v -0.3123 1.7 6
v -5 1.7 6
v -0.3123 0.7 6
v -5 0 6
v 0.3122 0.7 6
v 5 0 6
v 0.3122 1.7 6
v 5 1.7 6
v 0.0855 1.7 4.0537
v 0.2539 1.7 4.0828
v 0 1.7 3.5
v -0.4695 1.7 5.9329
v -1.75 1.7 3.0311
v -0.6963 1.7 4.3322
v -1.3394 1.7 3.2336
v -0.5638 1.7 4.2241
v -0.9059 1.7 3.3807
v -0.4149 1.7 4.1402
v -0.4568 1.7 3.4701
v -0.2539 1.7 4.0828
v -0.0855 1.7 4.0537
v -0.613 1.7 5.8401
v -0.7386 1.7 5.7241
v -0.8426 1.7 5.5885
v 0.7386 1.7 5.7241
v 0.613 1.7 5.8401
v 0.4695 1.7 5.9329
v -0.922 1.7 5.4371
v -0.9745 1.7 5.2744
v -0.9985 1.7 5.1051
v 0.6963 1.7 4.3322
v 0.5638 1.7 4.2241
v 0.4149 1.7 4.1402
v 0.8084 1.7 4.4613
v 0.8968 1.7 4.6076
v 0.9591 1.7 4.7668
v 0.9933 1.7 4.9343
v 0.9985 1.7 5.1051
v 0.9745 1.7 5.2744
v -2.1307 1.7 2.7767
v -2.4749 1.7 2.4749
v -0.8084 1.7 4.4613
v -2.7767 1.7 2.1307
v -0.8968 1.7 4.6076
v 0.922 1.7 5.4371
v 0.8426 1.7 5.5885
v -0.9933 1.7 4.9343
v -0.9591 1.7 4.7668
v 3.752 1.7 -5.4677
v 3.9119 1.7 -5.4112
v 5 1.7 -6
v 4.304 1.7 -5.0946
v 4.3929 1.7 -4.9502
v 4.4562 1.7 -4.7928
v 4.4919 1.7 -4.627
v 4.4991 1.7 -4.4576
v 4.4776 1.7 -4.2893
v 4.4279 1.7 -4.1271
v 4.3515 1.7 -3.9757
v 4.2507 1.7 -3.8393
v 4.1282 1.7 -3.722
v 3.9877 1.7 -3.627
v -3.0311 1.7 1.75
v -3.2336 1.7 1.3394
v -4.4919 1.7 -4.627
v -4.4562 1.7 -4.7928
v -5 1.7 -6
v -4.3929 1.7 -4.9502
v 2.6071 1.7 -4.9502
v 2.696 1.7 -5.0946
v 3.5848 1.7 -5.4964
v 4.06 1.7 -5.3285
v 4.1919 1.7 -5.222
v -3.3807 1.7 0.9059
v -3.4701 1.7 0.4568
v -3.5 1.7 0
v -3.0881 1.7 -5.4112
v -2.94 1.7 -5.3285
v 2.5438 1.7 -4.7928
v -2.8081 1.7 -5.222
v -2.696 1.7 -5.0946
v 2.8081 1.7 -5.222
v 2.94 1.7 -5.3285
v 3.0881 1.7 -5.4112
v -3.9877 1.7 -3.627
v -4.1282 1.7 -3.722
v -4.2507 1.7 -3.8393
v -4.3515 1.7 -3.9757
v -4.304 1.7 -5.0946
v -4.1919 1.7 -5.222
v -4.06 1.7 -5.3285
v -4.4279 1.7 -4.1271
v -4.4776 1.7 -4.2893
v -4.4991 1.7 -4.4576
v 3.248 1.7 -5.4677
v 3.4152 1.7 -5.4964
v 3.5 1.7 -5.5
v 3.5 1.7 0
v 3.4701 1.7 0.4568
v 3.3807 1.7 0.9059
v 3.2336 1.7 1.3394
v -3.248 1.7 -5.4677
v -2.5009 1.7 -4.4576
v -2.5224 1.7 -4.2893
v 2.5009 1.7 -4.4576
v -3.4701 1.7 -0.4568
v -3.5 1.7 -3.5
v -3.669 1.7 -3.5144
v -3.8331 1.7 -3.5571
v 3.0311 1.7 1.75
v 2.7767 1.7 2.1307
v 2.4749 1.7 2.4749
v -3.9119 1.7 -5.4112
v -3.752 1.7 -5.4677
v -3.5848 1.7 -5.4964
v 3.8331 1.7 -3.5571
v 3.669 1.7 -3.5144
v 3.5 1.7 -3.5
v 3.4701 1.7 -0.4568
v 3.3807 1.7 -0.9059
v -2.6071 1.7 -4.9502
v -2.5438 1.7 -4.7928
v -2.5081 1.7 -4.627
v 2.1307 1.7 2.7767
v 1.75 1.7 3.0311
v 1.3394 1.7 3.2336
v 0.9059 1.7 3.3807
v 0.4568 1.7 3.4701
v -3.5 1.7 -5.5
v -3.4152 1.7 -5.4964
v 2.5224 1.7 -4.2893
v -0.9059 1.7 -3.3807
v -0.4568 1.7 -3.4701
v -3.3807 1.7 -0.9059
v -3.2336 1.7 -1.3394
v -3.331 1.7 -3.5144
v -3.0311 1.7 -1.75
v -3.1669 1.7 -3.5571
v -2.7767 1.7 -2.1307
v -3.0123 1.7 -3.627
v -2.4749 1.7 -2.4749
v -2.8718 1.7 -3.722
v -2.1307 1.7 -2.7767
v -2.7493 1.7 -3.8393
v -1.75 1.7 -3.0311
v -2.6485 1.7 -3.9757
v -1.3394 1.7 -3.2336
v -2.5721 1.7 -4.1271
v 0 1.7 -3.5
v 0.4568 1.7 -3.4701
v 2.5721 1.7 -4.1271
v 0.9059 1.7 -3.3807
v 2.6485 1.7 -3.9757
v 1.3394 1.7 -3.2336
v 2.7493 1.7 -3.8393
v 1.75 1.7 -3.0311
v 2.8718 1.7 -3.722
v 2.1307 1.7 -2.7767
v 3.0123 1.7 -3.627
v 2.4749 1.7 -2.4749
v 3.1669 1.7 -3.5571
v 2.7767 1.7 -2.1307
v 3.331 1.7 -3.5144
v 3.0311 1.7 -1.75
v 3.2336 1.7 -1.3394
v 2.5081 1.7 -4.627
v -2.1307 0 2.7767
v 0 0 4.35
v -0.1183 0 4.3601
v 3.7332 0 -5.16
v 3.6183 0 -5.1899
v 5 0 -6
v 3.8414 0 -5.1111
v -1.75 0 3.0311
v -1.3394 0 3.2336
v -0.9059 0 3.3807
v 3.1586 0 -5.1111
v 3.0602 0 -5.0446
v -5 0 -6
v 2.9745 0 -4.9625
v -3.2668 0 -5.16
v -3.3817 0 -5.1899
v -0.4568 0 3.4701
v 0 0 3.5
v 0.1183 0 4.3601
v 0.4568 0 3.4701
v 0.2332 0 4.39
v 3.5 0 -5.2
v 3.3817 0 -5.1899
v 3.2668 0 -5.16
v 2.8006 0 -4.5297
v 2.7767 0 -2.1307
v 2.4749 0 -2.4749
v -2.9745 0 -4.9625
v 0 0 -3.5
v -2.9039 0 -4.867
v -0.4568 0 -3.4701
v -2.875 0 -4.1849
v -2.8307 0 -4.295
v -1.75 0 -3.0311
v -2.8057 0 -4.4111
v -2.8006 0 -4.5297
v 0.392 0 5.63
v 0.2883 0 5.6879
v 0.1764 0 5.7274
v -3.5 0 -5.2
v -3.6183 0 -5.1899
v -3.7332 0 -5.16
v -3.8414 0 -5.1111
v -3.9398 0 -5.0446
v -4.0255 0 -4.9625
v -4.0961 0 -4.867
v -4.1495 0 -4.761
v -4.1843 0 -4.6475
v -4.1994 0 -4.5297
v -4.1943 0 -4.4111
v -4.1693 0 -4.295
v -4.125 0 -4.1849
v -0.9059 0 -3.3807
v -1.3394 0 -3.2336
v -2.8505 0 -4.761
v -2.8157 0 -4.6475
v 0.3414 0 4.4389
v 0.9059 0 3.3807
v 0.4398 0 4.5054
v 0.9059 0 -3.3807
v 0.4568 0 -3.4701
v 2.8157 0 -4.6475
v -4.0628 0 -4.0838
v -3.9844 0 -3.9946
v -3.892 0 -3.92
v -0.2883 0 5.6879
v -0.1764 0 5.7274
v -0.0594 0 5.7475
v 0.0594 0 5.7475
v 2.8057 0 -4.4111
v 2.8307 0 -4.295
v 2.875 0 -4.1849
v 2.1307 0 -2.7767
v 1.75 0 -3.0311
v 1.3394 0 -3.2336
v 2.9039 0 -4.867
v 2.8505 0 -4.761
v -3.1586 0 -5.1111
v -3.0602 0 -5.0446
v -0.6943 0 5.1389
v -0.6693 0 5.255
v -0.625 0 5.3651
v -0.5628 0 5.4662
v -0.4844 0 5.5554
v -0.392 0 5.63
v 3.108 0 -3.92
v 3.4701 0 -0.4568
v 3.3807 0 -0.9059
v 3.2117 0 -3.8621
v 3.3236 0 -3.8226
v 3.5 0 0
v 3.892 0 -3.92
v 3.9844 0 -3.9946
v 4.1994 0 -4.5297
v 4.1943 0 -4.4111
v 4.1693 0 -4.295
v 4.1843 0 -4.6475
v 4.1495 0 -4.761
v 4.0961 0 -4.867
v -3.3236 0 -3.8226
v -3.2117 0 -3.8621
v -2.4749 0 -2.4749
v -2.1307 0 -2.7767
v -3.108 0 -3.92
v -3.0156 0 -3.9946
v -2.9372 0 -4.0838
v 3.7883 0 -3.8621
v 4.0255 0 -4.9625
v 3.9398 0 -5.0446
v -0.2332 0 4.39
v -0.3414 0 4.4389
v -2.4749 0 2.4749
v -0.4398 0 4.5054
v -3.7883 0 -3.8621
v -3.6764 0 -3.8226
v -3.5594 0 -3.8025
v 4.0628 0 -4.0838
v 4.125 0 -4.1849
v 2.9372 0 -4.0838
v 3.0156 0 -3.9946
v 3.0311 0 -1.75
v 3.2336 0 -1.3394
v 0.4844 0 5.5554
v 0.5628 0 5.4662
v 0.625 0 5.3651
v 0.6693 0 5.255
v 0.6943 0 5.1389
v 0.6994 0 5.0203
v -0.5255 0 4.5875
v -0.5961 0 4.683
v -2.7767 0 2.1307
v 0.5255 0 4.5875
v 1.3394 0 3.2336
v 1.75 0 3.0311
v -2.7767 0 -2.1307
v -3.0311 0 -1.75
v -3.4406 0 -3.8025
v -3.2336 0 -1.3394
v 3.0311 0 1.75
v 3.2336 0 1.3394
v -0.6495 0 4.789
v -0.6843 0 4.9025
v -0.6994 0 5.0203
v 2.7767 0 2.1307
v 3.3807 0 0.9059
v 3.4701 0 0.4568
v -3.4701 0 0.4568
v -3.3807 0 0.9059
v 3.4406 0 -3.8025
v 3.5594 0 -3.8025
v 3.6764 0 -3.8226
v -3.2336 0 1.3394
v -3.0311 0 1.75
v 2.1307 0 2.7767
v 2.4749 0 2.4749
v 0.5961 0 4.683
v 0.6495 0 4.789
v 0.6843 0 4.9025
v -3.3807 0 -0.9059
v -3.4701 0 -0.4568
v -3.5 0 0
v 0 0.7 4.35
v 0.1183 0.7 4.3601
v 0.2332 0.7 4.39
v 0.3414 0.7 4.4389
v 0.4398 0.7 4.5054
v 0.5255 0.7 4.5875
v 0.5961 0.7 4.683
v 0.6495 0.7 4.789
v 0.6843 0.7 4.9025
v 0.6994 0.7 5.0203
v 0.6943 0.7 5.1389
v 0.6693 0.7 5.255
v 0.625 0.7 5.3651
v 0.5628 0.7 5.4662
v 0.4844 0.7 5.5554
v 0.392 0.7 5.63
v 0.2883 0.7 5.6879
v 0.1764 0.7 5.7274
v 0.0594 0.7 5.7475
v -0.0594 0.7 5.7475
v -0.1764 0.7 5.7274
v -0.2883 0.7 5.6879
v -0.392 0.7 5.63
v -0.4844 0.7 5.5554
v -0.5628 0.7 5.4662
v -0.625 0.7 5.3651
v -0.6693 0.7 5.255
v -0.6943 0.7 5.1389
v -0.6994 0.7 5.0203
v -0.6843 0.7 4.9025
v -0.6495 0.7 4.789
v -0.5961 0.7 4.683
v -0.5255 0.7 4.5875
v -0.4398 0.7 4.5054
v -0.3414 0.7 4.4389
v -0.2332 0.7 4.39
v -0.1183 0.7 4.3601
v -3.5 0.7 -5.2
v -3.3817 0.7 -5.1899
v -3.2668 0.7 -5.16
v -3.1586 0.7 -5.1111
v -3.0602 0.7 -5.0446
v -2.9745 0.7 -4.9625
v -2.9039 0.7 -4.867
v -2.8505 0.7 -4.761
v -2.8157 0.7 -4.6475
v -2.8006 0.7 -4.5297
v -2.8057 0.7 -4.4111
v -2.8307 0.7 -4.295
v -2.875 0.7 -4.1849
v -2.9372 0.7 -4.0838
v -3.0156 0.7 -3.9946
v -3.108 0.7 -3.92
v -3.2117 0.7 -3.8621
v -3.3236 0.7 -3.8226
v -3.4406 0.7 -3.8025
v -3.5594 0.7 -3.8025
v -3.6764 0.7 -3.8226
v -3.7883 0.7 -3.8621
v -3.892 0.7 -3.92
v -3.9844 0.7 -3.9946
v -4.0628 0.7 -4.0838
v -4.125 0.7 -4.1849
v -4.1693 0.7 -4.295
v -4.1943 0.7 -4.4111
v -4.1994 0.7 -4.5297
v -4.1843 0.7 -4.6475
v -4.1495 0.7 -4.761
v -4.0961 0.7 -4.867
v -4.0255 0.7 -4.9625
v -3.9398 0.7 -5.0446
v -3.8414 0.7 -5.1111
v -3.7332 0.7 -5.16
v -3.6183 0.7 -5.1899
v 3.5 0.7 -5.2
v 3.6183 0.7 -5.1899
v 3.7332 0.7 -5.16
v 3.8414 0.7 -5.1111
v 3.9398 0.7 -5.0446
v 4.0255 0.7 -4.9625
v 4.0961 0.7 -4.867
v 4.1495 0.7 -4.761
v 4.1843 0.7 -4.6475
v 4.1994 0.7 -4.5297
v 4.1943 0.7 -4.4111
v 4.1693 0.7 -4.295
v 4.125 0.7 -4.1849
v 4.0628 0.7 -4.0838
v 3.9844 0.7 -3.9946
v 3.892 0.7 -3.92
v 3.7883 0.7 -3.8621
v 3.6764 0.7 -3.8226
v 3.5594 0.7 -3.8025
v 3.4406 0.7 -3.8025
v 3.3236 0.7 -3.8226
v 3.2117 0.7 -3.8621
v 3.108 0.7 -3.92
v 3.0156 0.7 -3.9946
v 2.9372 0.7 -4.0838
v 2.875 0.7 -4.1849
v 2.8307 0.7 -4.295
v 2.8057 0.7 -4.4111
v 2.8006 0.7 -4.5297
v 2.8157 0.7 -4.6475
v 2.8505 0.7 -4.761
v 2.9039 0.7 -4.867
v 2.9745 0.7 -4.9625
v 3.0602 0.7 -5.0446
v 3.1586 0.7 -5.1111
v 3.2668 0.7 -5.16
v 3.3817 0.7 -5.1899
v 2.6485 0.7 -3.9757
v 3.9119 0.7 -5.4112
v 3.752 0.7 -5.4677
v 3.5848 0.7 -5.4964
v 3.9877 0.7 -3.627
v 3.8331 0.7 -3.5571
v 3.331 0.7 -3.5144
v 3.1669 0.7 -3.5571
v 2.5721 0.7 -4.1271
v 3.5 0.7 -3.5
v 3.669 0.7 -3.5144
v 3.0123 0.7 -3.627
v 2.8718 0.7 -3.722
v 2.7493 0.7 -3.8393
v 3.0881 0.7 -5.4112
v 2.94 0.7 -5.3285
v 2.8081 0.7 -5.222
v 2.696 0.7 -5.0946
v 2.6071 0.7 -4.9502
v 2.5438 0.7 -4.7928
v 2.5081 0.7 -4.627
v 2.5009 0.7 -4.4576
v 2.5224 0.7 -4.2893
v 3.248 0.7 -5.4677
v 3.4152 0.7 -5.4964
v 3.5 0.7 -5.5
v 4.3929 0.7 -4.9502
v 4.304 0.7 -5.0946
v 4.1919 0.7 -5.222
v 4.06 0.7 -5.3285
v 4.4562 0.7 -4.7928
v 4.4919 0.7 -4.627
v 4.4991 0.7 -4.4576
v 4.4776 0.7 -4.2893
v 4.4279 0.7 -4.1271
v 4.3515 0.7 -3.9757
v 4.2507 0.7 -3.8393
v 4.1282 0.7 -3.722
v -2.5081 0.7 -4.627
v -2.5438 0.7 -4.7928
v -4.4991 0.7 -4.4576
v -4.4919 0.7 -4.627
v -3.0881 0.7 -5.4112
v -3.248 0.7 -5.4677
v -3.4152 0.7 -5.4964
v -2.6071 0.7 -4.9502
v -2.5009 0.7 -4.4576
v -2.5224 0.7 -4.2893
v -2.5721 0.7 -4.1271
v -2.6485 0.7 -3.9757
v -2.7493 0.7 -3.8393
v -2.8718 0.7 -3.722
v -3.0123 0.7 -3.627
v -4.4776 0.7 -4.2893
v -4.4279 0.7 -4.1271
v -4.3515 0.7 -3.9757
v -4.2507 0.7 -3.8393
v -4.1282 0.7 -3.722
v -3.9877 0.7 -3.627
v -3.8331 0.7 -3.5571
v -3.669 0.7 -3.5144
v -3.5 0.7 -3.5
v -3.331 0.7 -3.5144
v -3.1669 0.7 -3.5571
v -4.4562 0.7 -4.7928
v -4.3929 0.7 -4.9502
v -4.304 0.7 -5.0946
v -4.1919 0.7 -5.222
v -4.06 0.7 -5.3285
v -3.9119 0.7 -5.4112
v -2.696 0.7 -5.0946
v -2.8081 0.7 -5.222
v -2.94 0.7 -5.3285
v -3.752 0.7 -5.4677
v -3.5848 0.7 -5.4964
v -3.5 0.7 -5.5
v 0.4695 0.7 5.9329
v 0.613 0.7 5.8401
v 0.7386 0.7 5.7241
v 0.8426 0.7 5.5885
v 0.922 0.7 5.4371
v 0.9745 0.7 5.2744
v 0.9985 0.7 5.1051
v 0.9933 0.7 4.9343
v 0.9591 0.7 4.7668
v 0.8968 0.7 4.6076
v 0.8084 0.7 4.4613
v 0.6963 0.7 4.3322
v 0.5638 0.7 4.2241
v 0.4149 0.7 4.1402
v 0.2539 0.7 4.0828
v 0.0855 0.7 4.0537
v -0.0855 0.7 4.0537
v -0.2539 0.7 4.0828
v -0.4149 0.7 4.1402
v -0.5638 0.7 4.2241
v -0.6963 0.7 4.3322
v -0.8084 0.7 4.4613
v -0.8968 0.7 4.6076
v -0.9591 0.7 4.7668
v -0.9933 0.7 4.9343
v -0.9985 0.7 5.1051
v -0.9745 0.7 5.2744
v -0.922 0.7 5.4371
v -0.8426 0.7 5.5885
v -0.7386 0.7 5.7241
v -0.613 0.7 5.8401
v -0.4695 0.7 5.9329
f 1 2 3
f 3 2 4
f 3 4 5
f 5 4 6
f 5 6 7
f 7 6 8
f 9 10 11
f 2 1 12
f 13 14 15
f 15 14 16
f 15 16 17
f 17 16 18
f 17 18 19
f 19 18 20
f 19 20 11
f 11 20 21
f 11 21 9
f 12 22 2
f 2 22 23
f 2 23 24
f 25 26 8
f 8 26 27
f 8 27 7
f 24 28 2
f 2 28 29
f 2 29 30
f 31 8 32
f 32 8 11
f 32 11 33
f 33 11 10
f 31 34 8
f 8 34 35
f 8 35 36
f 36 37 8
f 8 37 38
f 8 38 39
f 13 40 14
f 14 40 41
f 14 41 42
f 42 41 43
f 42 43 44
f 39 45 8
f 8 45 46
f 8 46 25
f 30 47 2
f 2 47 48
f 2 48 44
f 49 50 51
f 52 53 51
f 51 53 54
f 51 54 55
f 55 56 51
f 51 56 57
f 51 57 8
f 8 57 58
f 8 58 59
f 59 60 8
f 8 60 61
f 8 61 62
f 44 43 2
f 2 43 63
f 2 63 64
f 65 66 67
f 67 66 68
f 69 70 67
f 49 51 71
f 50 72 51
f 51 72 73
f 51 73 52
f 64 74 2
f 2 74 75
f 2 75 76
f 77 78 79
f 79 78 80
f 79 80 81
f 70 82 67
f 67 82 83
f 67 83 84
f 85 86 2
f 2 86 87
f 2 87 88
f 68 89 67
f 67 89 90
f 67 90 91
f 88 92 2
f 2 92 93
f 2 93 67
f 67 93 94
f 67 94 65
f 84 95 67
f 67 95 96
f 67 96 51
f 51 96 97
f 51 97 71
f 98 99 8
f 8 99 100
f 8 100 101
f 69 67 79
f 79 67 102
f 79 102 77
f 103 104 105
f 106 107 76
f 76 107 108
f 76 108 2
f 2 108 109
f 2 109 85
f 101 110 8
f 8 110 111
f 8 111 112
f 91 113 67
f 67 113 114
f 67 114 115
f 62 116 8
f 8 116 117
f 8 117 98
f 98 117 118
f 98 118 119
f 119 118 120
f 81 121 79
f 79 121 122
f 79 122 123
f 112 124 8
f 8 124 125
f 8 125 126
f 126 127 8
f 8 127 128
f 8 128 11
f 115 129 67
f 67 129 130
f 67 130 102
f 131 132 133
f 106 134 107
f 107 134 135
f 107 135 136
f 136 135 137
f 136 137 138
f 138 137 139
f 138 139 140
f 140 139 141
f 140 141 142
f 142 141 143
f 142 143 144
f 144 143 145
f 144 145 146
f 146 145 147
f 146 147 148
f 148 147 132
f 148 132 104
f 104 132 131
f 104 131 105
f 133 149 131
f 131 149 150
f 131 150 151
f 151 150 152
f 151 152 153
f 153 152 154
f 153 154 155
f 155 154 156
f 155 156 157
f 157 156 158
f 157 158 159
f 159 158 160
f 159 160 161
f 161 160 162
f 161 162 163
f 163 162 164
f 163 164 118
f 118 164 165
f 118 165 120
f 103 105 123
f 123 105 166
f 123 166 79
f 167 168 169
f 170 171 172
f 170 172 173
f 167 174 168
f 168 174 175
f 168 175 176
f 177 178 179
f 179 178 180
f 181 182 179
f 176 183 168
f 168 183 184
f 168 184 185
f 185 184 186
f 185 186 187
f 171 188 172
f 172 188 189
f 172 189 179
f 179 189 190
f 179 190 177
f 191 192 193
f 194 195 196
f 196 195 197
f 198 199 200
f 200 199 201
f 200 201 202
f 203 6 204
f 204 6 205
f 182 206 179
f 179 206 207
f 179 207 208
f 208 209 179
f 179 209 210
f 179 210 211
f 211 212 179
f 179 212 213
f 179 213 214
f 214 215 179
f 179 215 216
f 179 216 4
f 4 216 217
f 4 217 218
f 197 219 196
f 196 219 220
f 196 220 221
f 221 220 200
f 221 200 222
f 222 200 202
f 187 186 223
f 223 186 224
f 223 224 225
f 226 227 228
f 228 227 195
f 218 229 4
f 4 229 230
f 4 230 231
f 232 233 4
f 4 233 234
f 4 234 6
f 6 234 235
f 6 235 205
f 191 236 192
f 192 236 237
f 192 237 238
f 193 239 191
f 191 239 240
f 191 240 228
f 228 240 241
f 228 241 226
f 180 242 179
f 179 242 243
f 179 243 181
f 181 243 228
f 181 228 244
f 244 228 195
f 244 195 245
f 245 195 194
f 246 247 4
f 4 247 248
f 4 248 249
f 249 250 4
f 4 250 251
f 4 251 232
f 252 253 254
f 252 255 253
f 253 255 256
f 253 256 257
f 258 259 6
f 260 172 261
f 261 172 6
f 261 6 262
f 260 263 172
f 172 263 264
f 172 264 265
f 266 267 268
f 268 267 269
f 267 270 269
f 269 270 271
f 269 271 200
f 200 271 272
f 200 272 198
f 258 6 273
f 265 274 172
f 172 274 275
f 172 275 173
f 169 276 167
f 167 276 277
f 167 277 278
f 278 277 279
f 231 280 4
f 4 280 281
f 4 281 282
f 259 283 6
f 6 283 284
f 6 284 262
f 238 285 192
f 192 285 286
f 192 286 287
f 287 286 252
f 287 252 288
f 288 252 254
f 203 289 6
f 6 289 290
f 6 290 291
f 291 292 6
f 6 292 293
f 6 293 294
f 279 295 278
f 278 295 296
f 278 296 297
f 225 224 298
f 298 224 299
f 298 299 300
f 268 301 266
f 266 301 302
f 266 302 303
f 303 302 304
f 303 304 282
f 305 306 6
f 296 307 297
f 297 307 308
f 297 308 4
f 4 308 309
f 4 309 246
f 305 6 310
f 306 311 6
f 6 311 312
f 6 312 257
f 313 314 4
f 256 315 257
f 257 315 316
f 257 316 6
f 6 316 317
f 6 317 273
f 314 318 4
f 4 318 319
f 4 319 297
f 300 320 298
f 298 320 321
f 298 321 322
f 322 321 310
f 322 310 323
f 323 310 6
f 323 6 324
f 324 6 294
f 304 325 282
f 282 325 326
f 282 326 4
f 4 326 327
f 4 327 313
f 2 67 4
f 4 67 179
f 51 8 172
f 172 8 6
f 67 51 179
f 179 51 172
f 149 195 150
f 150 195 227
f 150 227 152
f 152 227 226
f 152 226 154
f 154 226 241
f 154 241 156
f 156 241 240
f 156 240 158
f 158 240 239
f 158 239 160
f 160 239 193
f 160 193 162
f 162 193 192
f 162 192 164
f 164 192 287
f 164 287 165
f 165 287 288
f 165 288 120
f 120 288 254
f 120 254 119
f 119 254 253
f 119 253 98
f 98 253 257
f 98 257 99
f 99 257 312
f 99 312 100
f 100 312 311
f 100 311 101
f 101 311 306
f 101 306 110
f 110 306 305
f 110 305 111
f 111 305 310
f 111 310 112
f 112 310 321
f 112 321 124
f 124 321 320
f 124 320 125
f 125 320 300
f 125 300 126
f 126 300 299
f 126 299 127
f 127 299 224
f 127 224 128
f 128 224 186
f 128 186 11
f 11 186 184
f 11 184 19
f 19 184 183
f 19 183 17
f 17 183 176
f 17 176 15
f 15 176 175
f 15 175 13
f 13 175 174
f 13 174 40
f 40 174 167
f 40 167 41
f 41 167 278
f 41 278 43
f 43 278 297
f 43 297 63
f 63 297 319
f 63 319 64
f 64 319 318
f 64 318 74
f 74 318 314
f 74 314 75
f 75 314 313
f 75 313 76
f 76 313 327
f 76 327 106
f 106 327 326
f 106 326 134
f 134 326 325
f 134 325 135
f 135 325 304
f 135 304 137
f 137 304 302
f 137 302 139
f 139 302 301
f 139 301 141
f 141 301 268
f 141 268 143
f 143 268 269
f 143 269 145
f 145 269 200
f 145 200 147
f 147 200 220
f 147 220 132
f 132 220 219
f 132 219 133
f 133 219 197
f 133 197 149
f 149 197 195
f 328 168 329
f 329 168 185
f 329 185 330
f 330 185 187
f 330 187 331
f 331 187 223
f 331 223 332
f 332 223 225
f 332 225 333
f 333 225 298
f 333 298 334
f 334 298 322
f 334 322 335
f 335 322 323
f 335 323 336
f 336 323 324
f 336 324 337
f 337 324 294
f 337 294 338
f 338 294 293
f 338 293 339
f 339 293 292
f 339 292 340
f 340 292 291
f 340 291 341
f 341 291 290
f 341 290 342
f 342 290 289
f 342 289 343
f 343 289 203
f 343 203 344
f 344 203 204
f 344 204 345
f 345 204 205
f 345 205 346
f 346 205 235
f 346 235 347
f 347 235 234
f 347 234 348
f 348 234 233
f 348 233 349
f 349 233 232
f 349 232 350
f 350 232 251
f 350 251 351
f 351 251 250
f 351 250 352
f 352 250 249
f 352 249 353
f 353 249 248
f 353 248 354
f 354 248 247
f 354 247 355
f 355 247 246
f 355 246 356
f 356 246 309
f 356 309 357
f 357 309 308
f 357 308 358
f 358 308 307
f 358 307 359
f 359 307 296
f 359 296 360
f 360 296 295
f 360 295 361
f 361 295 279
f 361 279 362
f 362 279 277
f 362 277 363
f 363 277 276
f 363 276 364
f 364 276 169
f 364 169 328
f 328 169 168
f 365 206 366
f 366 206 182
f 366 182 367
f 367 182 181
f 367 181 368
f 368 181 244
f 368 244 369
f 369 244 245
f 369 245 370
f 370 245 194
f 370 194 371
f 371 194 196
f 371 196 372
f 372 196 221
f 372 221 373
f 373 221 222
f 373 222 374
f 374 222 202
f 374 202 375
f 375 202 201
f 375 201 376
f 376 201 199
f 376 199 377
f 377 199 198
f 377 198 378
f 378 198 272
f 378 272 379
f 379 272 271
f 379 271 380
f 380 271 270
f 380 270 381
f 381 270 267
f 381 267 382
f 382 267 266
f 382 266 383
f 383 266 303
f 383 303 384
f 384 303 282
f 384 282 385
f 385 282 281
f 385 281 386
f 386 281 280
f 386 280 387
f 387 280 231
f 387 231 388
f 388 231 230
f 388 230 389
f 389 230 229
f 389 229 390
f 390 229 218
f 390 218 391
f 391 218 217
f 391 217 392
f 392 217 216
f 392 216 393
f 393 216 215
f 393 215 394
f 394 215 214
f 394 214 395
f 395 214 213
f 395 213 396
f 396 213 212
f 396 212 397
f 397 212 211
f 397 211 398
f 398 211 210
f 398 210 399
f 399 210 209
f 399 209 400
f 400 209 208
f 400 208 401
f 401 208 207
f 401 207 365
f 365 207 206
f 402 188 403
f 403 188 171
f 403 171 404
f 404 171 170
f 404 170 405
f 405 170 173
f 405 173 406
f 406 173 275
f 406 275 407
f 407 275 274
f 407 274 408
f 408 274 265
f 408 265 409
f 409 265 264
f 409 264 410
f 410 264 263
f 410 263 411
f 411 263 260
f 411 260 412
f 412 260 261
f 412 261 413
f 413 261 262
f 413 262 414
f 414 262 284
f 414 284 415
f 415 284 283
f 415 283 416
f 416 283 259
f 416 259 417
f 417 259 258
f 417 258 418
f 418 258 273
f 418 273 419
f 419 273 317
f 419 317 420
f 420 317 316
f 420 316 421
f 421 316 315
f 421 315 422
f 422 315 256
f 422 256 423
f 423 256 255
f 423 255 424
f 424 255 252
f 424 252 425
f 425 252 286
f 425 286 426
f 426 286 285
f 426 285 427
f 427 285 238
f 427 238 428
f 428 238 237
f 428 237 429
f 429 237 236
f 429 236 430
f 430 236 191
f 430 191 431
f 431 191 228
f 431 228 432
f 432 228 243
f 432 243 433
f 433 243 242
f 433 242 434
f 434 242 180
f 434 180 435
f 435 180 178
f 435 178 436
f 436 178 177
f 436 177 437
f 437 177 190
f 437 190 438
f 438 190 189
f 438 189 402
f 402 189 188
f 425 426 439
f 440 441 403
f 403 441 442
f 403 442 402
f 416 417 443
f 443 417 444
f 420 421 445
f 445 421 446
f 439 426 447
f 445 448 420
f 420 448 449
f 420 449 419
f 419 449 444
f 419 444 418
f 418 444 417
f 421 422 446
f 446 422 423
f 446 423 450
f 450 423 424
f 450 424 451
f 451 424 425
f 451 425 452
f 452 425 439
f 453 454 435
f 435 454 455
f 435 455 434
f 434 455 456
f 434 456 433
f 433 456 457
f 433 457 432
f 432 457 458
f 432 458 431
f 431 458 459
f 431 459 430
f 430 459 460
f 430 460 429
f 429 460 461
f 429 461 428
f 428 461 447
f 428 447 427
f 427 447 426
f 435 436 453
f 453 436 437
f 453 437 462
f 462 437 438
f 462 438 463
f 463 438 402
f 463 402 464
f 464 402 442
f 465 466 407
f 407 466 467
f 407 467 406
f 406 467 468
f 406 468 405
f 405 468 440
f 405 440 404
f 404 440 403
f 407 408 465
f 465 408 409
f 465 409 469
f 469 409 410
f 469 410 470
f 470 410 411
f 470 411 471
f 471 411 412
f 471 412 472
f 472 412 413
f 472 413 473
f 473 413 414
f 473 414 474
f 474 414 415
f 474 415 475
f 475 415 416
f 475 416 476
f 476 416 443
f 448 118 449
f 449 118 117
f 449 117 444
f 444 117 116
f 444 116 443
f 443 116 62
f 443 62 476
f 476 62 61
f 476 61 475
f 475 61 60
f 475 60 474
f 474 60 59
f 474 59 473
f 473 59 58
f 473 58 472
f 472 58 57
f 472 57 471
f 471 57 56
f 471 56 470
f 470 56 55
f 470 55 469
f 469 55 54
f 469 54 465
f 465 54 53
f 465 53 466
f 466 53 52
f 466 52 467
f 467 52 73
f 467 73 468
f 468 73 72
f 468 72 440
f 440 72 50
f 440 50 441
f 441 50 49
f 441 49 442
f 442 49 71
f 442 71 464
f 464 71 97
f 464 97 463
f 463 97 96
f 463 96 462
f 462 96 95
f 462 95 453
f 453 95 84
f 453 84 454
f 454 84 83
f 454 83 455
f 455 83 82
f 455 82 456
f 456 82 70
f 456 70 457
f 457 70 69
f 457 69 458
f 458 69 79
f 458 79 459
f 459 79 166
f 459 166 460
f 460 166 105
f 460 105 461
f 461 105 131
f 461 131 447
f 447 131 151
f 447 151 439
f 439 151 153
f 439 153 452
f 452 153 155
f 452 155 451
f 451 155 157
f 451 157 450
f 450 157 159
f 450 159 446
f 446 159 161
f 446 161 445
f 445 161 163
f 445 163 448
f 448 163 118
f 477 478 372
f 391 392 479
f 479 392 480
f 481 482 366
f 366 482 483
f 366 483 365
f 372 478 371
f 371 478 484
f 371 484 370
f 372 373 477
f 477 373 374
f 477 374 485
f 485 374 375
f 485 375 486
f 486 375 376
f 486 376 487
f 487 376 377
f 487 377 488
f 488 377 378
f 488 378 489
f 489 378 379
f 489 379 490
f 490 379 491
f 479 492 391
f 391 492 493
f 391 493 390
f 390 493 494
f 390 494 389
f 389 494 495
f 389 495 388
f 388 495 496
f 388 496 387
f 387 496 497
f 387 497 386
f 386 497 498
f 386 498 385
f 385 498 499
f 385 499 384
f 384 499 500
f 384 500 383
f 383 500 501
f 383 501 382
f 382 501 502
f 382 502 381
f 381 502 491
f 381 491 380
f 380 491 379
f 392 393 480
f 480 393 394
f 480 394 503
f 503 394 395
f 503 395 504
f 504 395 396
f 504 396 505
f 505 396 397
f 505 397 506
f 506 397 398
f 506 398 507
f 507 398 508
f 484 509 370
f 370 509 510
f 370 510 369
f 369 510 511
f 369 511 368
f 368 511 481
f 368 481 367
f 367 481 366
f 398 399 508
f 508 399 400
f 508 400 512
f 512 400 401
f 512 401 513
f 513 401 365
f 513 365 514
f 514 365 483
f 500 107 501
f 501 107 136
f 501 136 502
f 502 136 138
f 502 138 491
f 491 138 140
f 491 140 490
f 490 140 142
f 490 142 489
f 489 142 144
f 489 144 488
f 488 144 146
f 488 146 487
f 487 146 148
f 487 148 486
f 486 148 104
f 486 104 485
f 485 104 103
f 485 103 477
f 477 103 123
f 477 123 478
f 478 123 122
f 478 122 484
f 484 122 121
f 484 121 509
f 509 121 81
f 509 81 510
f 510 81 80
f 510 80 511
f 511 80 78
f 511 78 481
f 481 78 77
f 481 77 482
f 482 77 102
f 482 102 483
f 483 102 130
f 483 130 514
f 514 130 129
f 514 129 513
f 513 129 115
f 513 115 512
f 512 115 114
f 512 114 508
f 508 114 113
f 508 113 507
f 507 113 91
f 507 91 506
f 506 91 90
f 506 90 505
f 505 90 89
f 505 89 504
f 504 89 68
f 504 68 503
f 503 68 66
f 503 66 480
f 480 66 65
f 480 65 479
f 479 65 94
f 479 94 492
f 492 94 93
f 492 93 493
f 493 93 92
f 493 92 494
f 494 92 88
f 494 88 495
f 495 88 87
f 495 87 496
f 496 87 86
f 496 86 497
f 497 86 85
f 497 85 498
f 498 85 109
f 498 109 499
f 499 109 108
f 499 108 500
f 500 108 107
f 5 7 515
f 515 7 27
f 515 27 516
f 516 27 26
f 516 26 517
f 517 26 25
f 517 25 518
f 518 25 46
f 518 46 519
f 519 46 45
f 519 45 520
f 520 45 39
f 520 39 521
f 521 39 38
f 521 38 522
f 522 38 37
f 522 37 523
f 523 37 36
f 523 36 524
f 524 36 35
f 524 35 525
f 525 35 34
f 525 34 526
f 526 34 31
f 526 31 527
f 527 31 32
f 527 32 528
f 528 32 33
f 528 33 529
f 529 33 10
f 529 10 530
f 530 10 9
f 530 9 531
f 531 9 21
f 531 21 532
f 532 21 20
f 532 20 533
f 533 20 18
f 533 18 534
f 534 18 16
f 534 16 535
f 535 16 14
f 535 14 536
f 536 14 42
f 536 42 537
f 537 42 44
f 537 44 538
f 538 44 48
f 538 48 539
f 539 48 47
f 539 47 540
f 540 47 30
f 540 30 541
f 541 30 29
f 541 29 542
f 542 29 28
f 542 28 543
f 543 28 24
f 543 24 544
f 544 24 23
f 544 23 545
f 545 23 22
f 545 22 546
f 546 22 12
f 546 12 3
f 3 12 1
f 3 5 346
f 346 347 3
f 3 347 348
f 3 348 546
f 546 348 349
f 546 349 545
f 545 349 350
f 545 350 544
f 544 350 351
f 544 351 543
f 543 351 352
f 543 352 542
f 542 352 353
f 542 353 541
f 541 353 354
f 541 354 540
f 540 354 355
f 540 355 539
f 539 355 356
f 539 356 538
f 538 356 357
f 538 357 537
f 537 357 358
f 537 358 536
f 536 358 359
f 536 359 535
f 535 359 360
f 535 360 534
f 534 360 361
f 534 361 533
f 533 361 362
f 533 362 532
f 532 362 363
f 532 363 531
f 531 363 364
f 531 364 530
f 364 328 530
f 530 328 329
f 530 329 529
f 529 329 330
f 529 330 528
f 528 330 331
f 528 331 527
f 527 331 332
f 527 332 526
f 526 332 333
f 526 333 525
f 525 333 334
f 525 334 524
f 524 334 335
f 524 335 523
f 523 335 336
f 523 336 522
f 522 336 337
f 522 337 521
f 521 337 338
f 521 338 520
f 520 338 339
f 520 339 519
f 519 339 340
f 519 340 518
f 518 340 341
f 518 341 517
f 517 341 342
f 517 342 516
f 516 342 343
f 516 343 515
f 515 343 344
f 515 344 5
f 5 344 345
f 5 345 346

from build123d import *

# Parameters (mm, degrees)
SKETCH_1_W          = 10
SKETCH_1_H          = 12
SKETCH_1_R          = 3.5
EXTRUDE_1_DEPTH     = 1.7
SKETCH_2_R          = 0.7
CUT_EXTRUDE_1_DEPTH = 8.993122043
CUT_EXTRUDE_START   = -1.7
SKETCH_2_3_R        = 1
CUT_EXTRUDE_2_DEPTH = 1


with BuildPart() as part:
    # 草图1 → 凸台-拉伸1 (new body)
    with BuildSketch(Plane(origin=(0, 0, 0), x_dir=(1, 0, 0), z_dir=(0, 1, 0))):
        Rectangle(SKETCH_1_W, SKETCH_1_H)
        with Locations(Location((0, 0, 0), (0, 0, 270))):
            Circle(SKETCH_1_R, mode=Mode.SUBTRACT)
    extrude(amount=EXTRUDE_1_DEPTH)

    # 草图2 → 切除-拉伸1 (cut, through all)
    with BuildSketch(Plane.XZ):
        with Locations(Location((0, 5.05, 0), (0, 0, 270))):
            Circle(SKETCH_2_R)
        with Locations(Location((3.5, -4.5, 0), (0, 0, 270))):
            Circle(SKETCH_2_R)
        with Locations(Location((-3.5, -4.5, 0), (0, 0, 270))):
            Circle(SKETCH_2_R)
    extrude(amount=-CUT_EXTRUDE_1_DEPTH, mode=Mode.SUBTRACT)

    # 草图2<3> → 切除-拉伸2 (cut)
    with BuildSketch(Plane.XZ.offset(CUT_EXTRUDE_START)):
        with Locations((0, 5.05)):
            Circle(SKETCH_2_3_R)
        with Locations(Location((3.5, -4.5, 0), (0, 0, 270))):
            Circle(SKETCH_2_3_R)
        with Locations(Location((-3.5, -4.5, 0), (0, 0, 270))):
            Circle(SKETCH_2_3_R)
    extrude(amount=CUT_EXTRUDE_2_DEPTH, mode=Mode.SUBTRACT)


solid = part.part
